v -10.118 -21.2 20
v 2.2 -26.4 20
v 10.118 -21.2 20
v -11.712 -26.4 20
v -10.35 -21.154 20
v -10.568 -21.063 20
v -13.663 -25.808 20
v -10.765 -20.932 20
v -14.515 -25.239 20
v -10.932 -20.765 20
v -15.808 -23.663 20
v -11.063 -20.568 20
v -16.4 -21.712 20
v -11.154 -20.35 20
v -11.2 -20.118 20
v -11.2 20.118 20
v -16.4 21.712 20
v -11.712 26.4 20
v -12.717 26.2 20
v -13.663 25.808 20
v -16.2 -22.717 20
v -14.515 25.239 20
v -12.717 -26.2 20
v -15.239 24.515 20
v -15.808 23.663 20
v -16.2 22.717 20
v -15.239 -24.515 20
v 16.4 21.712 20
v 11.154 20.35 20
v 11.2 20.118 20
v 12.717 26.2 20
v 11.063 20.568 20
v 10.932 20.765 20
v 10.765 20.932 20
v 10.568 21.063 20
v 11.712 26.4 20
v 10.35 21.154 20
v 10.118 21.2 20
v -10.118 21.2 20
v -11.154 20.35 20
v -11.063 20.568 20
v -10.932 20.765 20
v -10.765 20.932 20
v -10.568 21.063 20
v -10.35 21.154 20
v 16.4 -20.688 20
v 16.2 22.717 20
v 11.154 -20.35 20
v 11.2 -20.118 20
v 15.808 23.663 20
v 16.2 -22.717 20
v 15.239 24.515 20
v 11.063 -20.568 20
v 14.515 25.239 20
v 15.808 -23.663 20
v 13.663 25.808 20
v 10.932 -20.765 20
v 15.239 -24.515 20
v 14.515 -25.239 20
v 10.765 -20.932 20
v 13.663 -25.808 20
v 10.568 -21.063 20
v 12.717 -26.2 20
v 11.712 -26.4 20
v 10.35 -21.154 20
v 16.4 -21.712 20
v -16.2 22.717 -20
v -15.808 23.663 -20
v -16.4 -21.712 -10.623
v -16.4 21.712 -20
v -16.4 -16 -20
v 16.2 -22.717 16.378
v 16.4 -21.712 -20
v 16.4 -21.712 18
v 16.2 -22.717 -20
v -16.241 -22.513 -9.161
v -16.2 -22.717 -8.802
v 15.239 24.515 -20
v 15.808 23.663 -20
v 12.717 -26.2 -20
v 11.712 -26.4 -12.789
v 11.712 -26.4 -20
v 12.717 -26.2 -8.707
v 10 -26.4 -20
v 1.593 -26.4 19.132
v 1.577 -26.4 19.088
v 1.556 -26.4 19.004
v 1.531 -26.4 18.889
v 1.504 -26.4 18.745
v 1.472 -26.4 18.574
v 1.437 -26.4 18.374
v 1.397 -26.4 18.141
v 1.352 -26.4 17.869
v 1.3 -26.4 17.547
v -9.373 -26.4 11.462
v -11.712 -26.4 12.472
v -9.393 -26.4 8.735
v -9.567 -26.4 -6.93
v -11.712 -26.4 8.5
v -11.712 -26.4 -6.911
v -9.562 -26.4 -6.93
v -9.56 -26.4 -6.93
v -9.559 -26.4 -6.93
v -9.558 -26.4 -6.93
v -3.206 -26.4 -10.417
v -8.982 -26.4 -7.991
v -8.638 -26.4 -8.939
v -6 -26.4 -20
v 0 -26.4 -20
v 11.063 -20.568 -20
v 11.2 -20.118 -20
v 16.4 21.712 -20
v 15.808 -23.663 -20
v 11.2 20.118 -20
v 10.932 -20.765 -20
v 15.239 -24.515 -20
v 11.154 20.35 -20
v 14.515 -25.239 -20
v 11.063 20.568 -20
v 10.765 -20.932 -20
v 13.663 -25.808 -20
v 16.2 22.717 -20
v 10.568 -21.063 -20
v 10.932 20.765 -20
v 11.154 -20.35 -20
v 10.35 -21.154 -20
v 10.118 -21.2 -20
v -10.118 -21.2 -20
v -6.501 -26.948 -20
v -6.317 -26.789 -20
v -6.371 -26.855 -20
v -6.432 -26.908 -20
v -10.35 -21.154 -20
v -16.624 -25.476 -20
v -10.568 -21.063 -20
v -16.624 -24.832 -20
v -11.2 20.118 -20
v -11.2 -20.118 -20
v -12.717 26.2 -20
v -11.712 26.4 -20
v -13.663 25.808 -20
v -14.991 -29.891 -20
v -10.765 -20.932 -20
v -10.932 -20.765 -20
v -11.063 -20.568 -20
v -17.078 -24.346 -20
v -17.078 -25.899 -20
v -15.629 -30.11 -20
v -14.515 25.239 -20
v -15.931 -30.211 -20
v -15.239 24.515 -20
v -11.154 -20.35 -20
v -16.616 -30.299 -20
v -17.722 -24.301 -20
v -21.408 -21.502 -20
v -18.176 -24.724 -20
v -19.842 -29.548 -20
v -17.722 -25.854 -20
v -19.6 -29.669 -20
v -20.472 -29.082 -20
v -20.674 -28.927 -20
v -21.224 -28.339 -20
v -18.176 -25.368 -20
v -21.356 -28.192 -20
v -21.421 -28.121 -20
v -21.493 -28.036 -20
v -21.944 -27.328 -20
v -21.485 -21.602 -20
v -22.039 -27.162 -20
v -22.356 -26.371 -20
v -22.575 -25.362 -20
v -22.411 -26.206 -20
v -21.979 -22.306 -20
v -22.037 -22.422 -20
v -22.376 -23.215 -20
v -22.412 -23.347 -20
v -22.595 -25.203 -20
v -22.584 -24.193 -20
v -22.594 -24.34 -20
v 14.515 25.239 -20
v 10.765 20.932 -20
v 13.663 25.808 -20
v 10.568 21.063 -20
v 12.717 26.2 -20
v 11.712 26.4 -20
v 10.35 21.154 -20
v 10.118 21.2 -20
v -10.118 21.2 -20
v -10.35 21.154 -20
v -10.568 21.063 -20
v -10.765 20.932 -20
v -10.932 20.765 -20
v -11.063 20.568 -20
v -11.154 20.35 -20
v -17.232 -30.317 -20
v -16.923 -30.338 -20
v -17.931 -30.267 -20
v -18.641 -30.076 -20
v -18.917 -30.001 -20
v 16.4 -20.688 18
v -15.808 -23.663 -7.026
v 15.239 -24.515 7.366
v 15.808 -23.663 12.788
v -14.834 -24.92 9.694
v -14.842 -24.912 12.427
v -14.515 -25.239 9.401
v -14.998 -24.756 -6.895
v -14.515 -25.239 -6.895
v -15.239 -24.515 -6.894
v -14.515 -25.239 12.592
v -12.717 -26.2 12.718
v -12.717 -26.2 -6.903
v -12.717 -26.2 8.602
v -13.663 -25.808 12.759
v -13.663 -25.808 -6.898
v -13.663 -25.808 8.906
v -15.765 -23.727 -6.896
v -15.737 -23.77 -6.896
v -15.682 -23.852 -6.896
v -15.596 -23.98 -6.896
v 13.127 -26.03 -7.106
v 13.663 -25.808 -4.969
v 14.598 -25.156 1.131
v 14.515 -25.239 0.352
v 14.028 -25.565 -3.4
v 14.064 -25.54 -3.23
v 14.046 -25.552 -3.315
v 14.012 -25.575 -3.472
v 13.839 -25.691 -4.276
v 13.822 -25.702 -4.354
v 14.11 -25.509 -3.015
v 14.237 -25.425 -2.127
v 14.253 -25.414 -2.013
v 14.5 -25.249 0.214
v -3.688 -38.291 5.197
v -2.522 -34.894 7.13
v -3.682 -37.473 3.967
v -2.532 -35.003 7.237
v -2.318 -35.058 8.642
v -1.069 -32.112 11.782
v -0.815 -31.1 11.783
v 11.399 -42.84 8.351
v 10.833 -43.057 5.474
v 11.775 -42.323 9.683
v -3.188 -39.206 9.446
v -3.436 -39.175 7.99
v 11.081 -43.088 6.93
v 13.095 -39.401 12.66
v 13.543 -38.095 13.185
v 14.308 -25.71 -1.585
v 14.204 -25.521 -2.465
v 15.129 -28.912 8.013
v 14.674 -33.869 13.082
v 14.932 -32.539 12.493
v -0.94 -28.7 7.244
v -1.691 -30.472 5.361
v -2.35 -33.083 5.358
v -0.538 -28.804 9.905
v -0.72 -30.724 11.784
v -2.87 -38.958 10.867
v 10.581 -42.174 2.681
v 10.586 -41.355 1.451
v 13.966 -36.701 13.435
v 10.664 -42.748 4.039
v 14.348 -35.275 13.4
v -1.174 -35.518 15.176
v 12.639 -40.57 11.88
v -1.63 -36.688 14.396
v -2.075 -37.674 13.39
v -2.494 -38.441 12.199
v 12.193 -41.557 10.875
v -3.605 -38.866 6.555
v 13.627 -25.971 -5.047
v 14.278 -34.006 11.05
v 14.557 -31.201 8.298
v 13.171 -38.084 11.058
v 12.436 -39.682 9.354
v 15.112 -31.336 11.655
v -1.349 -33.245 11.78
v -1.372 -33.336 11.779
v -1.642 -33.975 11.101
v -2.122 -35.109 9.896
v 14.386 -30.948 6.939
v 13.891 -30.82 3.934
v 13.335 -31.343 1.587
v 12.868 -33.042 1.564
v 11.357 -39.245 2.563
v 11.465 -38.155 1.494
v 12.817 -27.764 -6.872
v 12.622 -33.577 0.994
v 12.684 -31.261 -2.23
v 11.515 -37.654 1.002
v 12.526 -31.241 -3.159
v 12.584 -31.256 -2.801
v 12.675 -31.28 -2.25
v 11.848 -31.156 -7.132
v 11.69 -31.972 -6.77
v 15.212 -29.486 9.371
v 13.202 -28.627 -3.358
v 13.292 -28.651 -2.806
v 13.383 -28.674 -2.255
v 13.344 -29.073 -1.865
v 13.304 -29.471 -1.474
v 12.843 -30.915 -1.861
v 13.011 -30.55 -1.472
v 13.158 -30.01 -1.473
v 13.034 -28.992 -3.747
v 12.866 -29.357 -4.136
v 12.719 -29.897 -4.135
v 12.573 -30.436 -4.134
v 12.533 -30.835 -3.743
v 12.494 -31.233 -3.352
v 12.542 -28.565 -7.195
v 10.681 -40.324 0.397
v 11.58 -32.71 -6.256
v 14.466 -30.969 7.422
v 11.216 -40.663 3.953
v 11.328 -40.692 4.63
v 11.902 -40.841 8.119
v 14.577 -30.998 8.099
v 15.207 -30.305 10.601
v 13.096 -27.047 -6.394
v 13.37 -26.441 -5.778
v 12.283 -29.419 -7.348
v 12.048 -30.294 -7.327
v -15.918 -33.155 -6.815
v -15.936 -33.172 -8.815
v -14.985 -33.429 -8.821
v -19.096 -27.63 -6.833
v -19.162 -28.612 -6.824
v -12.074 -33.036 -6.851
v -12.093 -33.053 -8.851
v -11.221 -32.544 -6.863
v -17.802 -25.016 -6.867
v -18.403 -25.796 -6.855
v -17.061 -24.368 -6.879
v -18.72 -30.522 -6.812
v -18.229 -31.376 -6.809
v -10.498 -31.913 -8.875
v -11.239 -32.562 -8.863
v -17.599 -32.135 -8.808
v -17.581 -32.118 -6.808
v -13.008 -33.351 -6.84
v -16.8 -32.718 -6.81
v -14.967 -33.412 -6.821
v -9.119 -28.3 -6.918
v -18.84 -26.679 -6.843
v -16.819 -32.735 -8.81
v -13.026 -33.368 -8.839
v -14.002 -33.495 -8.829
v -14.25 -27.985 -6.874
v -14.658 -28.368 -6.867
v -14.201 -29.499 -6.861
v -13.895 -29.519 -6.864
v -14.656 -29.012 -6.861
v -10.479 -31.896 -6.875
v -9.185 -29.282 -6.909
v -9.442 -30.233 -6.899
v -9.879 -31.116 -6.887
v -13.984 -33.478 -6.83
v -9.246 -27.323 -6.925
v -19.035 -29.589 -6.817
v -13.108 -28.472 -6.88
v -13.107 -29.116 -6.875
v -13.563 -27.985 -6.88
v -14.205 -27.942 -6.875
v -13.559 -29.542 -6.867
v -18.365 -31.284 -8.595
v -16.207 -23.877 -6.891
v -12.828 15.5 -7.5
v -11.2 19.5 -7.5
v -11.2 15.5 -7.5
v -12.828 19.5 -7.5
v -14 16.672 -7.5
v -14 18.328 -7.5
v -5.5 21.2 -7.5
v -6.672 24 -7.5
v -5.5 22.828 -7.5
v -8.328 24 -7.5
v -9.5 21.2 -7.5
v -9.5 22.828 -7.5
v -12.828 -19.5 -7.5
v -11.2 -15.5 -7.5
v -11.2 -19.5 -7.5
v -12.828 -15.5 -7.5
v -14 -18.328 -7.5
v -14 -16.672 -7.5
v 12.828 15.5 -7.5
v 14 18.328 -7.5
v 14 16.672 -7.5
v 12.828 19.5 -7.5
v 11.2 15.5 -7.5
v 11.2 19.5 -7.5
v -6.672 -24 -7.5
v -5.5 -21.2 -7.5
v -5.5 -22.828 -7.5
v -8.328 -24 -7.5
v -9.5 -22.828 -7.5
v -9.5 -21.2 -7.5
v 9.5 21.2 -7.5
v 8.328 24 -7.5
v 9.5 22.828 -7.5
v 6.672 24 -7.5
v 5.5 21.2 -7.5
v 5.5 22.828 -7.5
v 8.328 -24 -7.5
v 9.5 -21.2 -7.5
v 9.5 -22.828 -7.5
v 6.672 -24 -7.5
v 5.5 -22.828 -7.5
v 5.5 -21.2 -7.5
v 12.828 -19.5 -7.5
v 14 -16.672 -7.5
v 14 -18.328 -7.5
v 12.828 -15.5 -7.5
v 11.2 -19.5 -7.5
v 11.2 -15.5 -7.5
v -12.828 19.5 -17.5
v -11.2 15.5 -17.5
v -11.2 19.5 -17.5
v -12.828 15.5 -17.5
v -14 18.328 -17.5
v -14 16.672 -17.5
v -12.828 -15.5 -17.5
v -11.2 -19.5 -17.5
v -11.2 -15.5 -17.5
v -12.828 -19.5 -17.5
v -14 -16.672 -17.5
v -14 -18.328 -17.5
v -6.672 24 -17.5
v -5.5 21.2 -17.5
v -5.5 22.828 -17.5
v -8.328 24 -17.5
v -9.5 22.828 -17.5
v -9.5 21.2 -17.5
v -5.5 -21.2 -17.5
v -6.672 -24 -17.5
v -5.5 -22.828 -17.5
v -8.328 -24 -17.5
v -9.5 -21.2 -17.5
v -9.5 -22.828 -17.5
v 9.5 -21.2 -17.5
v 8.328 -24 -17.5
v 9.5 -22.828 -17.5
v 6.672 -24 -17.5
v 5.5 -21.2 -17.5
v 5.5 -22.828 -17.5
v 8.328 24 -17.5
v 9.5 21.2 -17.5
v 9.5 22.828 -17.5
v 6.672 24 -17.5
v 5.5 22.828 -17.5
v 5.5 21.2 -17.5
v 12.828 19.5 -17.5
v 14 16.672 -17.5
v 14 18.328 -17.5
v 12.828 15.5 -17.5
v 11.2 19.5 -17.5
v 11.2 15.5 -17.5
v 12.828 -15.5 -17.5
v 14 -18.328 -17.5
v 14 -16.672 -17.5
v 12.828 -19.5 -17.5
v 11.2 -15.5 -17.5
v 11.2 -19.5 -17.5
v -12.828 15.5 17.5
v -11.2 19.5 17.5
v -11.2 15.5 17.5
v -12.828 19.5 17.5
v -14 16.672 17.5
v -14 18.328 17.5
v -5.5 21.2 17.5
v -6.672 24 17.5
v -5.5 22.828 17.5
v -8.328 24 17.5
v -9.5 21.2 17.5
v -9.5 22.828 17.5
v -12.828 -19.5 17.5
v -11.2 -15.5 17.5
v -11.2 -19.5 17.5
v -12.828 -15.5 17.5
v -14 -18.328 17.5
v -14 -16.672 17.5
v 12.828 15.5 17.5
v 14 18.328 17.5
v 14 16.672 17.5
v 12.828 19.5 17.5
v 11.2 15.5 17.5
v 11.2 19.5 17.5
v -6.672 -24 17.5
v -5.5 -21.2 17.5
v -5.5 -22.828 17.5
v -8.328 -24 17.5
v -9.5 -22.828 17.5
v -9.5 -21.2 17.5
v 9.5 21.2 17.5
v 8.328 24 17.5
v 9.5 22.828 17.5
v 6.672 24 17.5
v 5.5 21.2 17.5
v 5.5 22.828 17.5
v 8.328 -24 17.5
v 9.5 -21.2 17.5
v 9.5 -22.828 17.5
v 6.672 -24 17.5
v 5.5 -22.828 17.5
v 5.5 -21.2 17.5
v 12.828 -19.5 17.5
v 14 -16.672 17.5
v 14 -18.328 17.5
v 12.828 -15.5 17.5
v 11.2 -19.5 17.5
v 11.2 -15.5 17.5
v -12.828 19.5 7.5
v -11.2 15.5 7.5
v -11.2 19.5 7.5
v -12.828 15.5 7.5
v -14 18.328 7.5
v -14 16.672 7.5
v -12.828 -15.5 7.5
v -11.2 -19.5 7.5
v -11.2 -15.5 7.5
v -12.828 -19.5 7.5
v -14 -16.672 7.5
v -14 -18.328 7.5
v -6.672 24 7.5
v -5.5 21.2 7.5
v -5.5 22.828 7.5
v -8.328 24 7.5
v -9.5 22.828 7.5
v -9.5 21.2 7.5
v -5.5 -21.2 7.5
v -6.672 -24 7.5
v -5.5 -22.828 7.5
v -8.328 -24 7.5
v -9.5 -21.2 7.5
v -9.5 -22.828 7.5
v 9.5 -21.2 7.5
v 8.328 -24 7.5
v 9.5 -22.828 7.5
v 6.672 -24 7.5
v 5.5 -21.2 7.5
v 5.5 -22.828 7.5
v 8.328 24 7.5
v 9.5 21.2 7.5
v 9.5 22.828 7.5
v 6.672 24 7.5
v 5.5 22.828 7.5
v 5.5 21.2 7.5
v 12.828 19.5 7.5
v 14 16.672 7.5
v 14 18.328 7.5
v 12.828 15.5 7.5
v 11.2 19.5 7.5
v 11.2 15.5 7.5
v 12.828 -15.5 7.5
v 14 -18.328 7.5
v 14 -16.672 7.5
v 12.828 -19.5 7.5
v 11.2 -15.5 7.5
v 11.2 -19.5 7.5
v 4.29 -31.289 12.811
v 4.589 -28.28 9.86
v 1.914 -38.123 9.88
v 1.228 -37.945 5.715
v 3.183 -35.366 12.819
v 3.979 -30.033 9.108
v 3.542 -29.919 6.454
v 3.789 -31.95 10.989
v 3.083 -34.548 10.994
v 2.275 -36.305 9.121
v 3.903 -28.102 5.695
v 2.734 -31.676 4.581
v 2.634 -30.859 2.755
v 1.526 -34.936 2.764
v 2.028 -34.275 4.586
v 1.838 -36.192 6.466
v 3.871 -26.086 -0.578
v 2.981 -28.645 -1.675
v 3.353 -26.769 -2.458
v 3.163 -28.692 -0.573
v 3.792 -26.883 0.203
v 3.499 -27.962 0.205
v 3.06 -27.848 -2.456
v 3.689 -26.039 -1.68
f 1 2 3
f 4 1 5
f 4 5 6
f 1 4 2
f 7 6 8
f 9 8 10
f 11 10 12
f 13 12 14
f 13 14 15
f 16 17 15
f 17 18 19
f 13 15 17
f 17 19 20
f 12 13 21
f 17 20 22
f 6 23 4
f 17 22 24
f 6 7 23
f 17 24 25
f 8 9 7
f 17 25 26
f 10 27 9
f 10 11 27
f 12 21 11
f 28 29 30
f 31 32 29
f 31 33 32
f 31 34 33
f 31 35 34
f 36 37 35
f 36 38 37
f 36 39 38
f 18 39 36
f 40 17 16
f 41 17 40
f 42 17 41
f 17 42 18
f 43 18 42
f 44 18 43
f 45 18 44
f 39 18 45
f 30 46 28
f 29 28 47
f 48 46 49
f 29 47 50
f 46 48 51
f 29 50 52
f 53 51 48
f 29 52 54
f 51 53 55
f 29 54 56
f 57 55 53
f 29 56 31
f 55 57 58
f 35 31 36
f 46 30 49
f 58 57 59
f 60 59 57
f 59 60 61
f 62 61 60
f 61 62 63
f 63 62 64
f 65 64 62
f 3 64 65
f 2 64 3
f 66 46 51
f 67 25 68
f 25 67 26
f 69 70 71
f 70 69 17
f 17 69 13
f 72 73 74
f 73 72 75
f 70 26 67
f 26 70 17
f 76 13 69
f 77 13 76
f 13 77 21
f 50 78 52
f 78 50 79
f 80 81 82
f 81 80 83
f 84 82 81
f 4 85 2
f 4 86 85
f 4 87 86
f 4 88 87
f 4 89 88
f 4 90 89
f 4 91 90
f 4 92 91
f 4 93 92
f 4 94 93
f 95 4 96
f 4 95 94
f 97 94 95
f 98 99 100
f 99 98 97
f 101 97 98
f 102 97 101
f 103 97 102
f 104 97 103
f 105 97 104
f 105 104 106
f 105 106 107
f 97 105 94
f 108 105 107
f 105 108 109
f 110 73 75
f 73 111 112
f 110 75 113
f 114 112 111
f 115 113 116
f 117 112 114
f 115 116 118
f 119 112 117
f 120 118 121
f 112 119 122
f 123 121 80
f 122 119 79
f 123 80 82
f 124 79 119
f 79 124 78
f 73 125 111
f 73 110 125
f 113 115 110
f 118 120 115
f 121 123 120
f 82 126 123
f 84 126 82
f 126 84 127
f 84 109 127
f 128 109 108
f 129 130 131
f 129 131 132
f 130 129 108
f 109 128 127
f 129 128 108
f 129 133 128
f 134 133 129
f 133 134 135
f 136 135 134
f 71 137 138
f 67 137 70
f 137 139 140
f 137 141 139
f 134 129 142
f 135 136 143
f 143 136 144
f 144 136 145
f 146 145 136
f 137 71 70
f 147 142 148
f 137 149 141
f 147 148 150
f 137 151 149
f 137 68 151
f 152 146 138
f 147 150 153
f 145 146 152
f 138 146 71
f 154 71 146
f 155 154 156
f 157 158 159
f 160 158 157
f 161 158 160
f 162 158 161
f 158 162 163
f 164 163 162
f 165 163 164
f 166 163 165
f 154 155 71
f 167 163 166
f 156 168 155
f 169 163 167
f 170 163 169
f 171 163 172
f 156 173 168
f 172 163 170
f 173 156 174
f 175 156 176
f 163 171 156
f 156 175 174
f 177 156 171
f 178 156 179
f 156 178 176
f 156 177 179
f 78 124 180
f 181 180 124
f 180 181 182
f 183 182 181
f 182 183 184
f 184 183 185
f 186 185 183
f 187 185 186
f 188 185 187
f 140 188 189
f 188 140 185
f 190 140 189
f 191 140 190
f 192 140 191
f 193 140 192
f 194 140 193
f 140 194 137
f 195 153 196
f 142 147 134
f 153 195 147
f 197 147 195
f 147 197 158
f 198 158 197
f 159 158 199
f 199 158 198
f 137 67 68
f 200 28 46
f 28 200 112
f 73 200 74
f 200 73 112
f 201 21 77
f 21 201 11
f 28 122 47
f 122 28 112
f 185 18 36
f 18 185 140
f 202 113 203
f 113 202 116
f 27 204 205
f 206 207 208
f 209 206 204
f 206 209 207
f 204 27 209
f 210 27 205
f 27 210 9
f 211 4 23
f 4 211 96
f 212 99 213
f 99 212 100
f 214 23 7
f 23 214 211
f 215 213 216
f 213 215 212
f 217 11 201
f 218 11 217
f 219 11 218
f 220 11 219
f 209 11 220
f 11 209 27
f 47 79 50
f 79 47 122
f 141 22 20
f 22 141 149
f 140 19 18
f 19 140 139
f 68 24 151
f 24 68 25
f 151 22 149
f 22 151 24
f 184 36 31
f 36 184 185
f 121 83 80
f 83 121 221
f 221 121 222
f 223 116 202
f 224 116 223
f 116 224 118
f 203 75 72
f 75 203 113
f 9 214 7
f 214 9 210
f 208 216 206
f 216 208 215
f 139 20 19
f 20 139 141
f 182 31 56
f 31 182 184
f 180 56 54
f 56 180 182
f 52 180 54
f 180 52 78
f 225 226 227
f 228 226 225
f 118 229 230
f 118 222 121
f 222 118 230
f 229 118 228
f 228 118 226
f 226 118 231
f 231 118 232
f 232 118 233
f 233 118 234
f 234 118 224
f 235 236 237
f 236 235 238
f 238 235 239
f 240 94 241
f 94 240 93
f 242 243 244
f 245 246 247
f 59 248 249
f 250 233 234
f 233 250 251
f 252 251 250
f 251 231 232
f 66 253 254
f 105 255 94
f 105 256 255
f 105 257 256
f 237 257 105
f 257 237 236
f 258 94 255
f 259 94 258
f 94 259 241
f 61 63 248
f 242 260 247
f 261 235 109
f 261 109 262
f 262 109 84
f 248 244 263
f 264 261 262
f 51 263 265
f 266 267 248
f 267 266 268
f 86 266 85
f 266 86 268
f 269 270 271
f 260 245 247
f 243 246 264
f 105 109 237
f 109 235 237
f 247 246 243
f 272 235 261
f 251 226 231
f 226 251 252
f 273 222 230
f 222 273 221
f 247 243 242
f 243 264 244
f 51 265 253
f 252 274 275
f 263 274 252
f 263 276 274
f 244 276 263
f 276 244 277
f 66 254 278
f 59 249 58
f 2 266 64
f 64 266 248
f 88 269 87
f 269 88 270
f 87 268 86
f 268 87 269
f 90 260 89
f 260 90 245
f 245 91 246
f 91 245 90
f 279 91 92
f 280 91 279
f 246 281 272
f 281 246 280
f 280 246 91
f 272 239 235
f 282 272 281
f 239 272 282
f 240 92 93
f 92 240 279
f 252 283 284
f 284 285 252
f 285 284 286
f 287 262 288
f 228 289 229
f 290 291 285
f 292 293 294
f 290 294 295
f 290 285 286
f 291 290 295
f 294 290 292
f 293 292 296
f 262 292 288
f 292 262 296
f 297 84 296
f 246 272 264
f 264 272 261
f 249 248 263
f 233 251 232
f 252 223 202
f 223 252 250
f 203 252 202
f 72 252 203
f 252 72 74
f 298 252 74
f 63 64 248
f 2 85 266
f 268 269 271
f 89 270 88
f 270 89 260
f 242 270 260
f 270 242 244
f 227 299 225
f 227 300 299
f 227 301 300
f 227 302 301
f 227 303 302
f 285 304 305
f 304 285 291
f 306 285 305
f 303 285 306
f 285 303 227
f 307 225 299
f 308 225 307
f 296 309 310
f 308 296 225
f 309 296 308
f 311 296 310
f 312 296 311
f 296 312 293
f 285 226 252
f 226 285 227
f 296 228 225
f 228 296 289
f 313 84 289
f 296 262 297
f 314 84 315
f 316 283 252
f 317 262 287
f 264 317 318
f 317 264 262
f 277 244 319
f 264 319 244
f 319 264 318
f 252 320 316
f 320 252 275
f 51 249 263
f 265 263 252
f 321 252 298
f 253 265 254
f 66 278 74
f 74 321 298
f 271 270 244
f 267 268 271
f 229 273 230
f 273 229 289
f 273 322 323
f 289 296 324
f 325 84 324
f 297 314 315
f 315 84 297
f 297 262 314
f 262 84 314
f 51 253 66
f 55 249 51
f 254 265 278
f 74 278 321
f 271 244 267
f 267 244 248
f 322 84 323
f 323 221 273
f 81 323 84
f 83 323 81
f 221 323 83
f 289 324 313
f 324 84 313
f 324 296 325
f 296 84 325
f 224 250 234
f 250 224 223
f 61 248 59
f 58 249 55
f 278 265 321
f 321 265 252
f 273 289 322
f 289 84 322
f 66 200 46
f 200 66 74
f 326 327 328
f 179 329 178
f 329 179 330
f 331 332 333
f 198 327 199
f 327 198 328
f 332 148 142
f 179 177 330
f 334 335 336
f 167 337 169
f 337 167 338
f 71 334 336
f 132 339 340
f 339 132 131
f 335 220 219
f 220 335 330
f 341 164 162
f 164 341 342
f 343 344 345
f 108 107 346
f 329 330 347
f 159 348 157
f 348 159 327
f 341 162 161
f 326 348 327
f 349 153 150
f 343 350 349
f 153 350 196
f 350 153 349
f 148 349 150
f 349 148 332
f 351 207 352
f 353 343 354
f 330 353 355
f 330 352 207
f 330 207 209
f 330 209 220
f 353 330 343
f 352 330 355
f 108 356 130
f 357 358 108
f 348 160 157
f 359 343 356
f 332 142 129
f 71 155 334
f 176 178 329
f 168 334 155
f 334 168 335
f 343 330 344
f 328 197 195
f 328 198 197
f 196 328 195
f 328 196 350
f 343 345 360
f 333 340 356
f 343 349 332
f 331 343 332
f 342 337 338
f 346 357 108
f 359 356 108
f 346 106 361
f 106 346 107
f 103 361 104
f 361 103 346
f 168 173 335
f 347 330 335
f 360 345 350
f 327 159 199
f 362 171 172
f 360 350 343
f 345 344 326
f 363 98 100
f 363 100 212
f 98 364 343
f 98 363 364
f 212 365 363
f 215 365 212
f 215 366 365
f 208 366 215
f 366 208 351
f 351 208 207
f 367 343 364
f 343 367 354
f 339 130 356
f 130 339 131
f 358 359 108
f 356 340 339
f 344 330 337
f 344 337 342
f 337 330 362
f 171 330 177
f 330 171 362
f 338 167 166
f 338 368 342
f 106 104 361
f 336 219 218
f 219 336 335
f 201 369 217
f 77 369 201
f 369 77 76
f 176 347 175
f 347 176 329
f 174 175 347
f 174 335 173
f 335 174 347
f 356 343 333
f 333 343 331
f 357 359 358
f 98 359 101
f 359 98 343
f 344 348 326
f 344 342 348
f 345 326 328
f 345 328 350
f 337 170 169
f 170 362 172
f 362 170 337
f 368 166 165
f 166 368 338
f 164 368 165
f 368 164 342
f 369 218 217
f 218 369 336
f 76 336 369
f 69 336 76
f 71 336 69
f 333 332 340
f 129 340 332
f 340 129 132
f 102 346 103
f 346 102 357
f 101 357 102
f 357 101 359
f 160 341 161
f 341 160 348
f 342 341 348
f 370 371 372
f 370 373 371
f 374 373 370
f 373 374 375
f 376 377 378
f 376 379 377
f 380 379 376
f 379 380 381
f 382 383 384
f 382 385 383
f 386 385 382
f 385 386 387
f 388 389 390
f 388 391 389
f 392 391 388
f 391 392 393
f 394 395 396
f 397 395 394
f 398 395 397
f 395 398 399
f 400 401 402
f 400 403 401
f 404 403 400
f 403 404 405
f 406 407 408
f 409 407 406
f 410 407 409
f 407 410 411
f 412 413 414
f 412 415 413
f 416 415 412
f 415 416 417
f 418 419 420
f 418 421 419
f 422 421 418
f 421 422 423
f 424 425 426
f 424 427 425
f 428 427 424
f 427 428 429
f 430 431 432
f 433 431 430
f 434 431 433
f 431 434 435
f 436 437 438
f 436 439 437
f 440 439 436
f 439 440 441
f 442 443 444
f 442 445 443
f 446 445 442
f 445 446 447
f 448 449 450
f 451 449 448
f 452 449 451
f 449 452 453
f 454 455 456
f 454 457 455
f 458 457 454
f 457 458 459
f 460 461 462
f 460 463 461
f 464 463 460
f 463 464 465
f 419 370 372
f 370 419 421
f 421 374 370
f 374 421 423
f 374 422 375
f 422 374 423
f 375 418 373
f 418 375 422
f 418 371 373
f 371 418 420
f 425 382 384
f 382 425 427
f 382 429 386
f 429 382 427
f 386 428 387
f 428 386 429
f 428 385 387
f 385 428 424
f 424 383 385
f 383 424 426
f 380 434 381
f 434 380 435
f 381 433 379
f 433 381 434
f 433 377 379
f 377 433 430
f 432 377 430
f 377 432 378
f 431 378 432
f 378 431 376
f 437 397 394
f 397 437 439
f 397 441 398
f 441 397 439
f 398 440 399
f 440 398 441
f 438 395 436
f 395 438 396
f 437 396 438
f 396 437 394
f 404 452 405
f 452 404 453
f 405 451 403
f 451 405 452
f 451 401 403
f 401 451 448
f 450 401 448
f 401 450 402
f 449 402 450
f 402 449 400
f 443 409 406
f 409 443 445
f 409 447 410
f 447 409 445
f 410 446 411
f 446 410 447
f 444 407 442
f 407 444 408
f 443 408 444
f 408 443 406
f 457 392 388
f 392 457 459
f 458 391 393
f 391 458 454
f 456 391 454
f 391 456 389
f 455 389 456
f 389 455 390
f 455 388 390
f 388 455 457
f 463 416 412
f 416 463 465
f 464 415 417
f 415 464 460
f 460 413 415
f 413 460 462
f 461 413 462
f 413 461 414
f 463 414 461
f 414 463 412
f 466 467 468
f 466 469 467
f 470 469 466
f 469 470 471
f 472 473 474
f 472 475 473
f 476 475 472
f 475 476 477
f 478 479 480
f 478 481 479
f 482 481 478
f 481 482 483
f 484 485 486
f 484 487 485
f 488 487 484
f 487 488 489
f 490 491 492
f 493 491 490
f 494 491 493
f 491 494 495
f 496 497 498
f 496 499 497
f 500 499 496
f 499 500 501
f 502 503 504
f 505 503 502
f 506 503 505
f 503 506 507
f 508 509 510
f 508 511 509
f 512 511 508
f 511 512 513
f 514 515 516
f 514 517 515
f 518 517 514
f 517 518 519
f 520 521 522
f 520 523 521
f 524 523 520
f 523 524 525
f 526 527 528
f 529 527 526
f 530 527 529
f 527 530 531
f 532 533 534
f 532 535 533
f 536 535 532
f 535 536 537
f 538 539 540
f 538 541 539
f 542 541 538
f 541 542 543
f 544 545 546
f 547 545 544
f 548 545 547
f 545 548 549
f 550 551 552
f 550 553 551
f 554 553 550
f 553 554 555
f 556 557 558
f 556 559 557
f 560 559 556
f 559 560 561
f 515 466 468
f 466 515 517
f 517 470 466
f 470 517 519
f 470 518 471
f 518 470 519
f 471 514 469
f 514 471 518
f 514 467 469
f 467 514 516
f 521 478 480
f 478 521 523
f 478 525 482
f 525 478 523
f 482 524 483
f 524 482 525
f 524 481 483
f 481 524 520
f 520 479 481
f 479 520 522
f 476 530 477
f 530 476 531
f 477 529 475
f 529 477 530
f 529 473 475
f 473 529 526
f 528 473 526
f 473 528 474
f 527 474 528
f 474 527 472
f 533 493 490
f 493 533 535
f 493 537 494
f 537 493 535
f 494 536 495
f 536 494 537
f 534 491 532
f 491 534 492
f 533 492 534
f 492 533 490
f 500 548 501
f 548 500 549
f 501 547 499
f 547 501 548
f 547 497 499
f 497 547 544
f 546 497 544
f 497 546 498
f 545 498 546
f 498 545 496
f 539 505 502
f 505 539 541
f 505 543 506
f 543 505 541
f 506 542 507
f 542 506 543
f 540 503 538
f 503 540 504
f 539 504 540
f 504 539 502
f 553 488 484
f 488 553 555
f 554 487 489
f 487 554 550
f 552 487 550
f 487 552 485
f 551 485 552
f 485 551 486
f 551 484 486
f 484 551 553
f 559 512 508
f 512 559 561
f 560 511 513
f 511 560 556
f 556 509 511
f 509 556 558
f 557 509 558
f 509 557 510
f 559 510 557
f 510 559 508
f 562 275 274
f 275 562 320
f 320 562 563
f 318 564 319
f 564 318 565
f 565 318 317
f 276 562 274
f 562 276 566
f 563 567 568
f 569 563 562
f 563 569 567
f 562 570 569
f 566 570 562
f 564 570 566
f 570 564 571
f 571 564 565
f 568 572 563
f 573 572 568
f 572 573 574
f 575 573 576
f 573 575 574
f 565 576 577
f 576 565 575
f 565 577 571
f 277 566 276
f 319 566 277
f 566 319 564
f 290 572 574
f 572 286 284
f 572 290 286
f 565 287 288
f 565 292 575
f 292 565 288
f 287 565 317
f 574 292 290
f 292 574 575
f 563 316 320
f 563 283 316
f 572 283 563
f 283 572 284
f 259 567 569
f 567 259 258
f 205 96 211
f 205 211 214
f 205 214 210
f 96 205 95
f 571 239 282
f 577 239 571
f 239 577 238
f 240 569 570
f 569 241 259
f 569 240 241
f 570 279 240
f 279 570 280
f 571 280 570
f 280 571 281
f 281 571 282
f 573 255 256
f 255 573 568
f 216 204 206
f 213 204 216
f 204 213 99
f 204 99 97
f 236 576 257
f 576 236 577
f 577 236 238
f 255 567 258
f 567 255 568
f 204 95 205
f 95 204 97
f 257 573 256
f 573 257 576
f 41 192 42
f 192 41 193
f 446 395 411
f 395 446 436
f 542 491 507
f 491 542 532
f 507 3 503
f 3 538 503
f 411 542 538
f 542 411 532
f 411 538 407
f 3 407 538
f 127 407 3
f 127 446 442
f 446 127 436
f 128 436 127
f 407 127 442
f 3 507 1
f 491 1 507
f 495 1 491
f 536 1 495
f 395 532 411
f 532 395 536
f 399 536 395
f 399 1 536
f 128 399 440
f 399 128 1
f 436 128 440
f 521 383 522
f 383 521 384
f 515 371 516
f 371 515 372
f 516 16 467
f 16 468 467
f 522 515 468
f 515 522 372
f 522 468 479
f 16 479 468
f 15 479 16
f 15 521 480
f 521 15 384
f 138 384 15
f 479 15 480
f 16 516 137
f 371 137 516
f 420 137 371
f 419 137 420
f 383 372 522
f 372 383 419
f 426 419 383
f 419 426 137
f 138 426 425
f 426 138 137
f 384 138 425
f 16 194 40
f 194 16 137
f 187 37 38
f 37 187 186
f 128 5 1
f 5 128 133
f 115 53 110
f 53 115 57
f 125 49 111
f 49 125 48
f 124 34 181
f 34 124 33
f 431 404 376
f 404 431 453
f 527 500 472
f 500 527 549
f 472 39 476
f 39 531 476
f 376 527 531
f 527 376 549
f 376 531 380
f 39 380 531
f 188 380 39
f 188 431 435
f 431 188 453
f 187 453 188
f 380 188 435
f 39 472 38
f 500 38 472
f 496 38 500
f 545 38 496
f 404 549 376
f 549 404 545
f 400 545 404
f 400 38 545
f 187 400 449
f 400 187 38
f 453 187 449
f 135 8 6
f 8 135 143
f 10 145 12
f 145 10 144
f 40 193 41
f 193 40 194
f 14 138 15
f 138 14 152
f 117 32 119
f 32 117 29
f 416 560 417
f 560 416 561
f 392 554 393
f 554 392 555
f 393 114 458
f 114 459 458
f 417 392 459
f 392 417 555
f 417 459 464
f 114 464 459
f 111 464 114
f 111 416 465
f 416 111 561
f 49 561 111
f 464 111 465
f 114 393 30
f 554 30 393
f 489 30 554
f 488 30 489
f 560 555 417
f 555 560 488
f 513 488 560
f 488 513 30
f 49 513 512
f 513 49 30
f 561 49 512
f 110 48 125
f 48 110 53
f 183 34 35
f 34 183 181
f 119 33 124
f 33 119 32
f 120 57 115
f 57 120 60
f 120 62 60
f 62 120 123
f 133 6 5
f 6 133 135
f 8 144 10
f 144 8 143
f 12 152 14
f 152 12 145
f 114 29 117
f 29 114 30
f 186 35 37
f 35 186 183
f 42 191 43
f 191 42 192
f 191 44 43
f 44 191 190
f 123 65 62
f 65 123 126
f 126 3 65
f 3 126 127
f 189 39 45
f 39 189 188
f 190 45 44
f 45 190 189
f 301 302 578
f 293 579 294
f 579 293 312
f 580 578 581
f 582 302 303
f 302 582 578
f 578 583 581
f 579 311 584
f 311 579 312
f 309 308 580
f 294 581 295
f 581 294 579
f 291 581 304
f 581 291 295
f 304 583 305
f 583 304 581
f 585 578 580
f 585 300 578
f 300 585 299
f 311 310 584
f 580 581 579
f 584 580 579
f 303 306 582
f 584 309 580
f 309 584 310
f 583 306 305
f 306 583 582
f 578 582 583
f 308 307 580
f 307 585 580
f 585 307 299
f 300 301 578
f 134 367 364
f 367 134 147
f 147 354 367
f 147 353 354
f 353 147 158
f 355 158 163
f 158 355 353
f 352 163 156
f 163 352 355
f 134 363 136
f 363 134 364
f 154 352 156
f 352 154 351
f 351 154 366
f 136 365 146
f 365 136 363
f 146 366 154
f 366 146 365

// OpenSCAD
// file: ../pulleys.scad
include <config.scad>;
use <lib/util.scad>;

module filament_pulley(diam=(16*2/pi), base_height=6, wraps=5,hole_od=0,od_height=0) {
  //diam           = circumference/pi;
  circumference  = diam*pi;
  height         = wraps*groove_height+2*(wraps+1)*groove_depth;
  base_diam      = diam+groove_depth*2;
  steps_per_mm   = steps_per_turn/circumference;
  echo("CIRCUMF:   ", steps_per_mm);
  echo("STEPS/MM:  ", steps_per_mm);
  echo("DIAM:      ", diam);
  echo("BASE_DIAM: ", base_diam);
  echo("HEIGHT:    ", height+base_height-groove_depth);

  base_pos_z     = height+base_height/2-groove_depth;
  bottom_pos_z   = 0;
  top_pos_z      = (base_height > 0) ? base_pos_z + base_height/2 : height;

  overall_height = top_pos_z - bottom_pos_z;

  module profile() {
    difference() {
      union() {
        translate([diam/4,height/2,0]) {
          square([diam/2,height],center=true);
        }

        translate([base_diam/4,base_pos_z,0]) {
          square([base_diam/2,base_height],center=true);
        }

        for (z=[0:wraps]) {
          translate([diam/2,groove_depth+z*(groove_height+groove_depth*2)]) {
            hull() {
              translate([-0.5,0,0]) {
                square([1,groove_depth*2],center=true);
              }
              translate([0,0,0]) {
                square([groove_depth*2,0.005],center=true);
              }
            }
          }
        }
      }
    }
  }

  translate([0,0,height+1]) {
    /*
    % difference() {
      profile();
      hole_profile();
    }
    */
  }

  module body() {
    rotate_extrude(convexity=10,$fn=resolution) {
      profile();
    }

    translate([diam/2+1,0,groove_depth*2+groove_height/2]) {
      // % cube([1,1,groove_height],center=true);
    }
  }

  module holes() {
    // for driver
    nut_thickness = 2.70;
    nut_diam      = 5.55;
    screw_diam    = 3.15;
    shaft_diam    = 5.1;
    d_cut_depth   = shaft_diam-4.6;
    // d_cut_height  = base_height+3;
    d_cut_height  = 100;

    round_shaft_allowance = 6;

    // idler branch
    if (hole_od) {
      hole_diam = pulley_idler_bearing_od + tolerance;
      bearing_hole_resolution = 36;
      hole_id = hole_diam-1;
      hole(hole_id,40,bearing_hole_resolution);

      for(z=[top_pos_z-pulley_idler_bearing_height/2,bottom_pos_z+pulley_idler_bearing_height/2]) {
        translate([0,0,z]) {
          % hole(pulley_idler_bearing_od, pulley_idler_bearing_height+0.05, resolution*2);
          hull() {
            hole(hole_diam, pulley_idler_bearing_height, bearing_hole_resolution);
            hole(hole_diam-1, pulley_idler_bearing_height+1, bearing_hole_resolution);
          }
        }
      }
    }

    // driver
    if (base_height) {
      difference() {
        hole(shaft_diam,50,12);

        translate([shaft_diam/2,0,overall_height/2+round_shaft_allowance-0.05]) {
          cube([d_cut_depth*2,shaft_diam+1,overall_height],center=true);
        }
      }
      translate([shaft_diam/2-d_cut_depth-0.1+nut_thickness/2,0,top_pos_z-nut_diam/2]) {
        rotate([0,90,0]) {
          rotate([0,0,90]) {
            hole(nut_diam,nut_thickness,6);
          }
          translate([0,0,10]) {
            hole(screw_diam,20,16);
          }
        }
        translate([0,0,nut_diam/2]) {
          cube([nut_thickness,nut_diam,nut_diam],center=true);
        }
      }
    }
  }

  difference() {
    body();
    holes();
  }
}

module driver_pulley() {
  base_height   = 7;

  filament_pulley(driver_diam,base_height,driver_wraps);
}

module idler_pulley() {
  intersection() {
    filament_pulley(pulley_idler_diam,0,idler_wraps,pulley_idler_bearing_od+tolerance,pulley_idler_bearing_height);

    translate([0,20,0]) {
      // cube([40,40,40],center=true);
    }
  }
}
// file: ../misc.scad
include <config.scad>;
include <lib/vitamins.scad>;

module endstop_flag() {
  flag_length = line_bearing_diam-1;
  flag_height = printed_carriage_outer_skin_from_extrusion+mech_endstop_tiny_width+2;
  overall_width = v_slot_width + wall_thickness*4;

  module profile() {
    hull() {
      square([v_slot_gap,2*v_slot_depth],center=true);

      translate([0,-wall_thickness]) {
        square([v_slot_width,wall_thickness*2],center=true);
      }
    }

    hull() {
      translate([0,bottom*(wall_thickness)]) {
        rounded_square(overall_width,wall_thickness*2,wall_thickness);
      }
      translate([right*(overall_width/2-wall_thickness),-flag_height/2,0]) {
        rounded_square(wall_thickness*2,flag_height,wall_thickness);
      }
    }
  }

  module body() {
    linear_extrude(height=flag_length,center=true,convexity=2) {
      profile();
    }
  }

  module holes() {
    hull() {
      translate([0,bottom*(wall_thickness*2+flag_height),flag_length/2+1]) {
        cube([overall_width+1,flag_height*2,2],center=true);
      }

      translate([0,bottom*(flag_height+1),-flag_height/2+wall_thickness*2]) {
        cube([overall_width+1,2,2],center=true);
      }
    }

    translate([left*(wall_thickness*2),bottom*(wall_thickness*2+flag_height/2),wall_thickness*2]) {
      cube([overall_width,flag_height,flag_length],center=true);
    }

    rotate([90,0,0]) {
      hole(m3_loose_hole,40,8);
    }
  }

  translate([0,0,flag_length/2]) {
    color("lightblue") difference() {
      body();
      holes();
    }
  }
}
// file: ../lib/util.scad
function accurate_diam(diam,sides) = 1 / cos(180/sides) / 2 * diam;

module hole(diam,len,sides=8) {
  rotate([0,0,180/sides]) {
    cylinder(r=accurate_diam(diam,sides),h=len,center=true,$fn=sides);
  }
}

module accurate_circle(diam,sides=8) {
  rotate([0,0,180/sides]) {
    circle(r=accurate_diam(diam,sides),$fn=sides);
  }
}

module debug_axes() {
  color("red") translate([50,0,0]) cube([100,.2,.2],center=true);
  color("green") translate([0,50,0]) cube([.2,100,.2],center=true);
  color("blue") translate([0,0,50]) cube([.2,.2,100],center=true);
}

module ring(id,thickness,height,fn=16) {
  od = id + thickness;
  linear_extrude(height=height,center=true) {
    difference() {
      accurate_circle(od,fn);
      accurate_circle(id,fn);
    }
  }
}

module rounded_square(width,depth,diam,fn=resolution) {
  pos_x = width/2-diam/2;
  pos_y = depth/2-diam/2;

  hull() {
    for(x=[left,right]) {
      for(y=[front,rear]) {
        translate([x*pos_x,y*pos_y,0]) {
          accurate_circle(diam,fn);
        }
      }
    }
  }
}

module rounded_cube(width,depth,height,diam,fn=resolution) {
  linear_extrude(height=height,center=true,convexity=3) {
    rounded_square(width,depth,diam,fn);
  }
}

module round_corner_filler(diam,length) {
  linear_extrude(height=length,center=true,convexity=3) {
    round_corner_filler_profile(diam);
  }
}

module round_corner_filler_profile(diam,res=resolution) {
  difference() {
    translate([diam/4,diam/4,0]) {
      square([diam/2,diam/2],center=true);
    }
    translate([diam/2,diam/2,0]) {
      accurate_circle(diam,res);
    }
  }
}

module space_along_length(length,min_hole_spacing=4*inch,from_end=1*inch) {
  avail_length = length - (from_end*2);
  num_spaces   = floor(avail_length / min_hole_spacing);
  extra_space  = (avail_length - (num_spaces*min_hole_spacing)) / num_spaces;
  spacing      = min_hole_spacing + extra_space;

  // echo(length, num_spaces, spacing);

  translate([0,-length/2+from_end,0]) {
    for(y=[0:num_spaces]) {
      translate([0,y*spacing,0]) {
        children();
      }
    }
  }
}

module letter_spike(thin_width,thick_width,thickness) {
  hull() {
    cylinder(r=thin_width,h=thickness*2,center=true,$fn=16);
    cylinder(r=thick_width,h=0.01,center=true,$fn=16);
  }
}

module letter_L(width=10,height=20,thickness=0.5,thick_width=2,thin_width=0.3) {
  lines = [
    [
      [-width/2,height/2,0],
      [-width/2,-height/2,0],
    ],
    [
      [-width/2,-height/2,0],
      [width/2,-height/2,0],
    ],
  ];

  for(pair=lines) {
    hull() {
      for(vect=pair) {
        translate(vect) {
          letter_spike(thin_width,thick_width,thickness);
        }
      }
    }
  }
}

module letter_R(width=10,height=20,thickness=0.5,thick_width=2,thin_width=0.3) {
  lines = [
    [
      [-width/2,height/2,0],
      [-width/2,-height/2,0],
    ],
    [
      [-width/2,height/2,0],
      [width/2,height/3,0],
    ],
    [
      [width/2,height/3,0],
      [-width/4,0,0],
    ],
    [
      [-width/2,0,0],
      [-width/4,0,0],
    ],
    [
      [-width/4,0,0],
      [width/2,-height/2,0],
    ],
  ];

  for(pair=lines) {
    hull() {
      for(vect=pair) {
        translate(vect) {
          letter_spike(thin_width,thick_width,thickness);
        }
      }
    }
  }
}

/*
translate([-10,0,0]) {
  letter_L();
}

translate([10,0,0]) {
  letter_R();
}
*/
// main file
use <../trial/trial.scad>;

rotate([90,0,0]) {
  trial_carriage();
}
